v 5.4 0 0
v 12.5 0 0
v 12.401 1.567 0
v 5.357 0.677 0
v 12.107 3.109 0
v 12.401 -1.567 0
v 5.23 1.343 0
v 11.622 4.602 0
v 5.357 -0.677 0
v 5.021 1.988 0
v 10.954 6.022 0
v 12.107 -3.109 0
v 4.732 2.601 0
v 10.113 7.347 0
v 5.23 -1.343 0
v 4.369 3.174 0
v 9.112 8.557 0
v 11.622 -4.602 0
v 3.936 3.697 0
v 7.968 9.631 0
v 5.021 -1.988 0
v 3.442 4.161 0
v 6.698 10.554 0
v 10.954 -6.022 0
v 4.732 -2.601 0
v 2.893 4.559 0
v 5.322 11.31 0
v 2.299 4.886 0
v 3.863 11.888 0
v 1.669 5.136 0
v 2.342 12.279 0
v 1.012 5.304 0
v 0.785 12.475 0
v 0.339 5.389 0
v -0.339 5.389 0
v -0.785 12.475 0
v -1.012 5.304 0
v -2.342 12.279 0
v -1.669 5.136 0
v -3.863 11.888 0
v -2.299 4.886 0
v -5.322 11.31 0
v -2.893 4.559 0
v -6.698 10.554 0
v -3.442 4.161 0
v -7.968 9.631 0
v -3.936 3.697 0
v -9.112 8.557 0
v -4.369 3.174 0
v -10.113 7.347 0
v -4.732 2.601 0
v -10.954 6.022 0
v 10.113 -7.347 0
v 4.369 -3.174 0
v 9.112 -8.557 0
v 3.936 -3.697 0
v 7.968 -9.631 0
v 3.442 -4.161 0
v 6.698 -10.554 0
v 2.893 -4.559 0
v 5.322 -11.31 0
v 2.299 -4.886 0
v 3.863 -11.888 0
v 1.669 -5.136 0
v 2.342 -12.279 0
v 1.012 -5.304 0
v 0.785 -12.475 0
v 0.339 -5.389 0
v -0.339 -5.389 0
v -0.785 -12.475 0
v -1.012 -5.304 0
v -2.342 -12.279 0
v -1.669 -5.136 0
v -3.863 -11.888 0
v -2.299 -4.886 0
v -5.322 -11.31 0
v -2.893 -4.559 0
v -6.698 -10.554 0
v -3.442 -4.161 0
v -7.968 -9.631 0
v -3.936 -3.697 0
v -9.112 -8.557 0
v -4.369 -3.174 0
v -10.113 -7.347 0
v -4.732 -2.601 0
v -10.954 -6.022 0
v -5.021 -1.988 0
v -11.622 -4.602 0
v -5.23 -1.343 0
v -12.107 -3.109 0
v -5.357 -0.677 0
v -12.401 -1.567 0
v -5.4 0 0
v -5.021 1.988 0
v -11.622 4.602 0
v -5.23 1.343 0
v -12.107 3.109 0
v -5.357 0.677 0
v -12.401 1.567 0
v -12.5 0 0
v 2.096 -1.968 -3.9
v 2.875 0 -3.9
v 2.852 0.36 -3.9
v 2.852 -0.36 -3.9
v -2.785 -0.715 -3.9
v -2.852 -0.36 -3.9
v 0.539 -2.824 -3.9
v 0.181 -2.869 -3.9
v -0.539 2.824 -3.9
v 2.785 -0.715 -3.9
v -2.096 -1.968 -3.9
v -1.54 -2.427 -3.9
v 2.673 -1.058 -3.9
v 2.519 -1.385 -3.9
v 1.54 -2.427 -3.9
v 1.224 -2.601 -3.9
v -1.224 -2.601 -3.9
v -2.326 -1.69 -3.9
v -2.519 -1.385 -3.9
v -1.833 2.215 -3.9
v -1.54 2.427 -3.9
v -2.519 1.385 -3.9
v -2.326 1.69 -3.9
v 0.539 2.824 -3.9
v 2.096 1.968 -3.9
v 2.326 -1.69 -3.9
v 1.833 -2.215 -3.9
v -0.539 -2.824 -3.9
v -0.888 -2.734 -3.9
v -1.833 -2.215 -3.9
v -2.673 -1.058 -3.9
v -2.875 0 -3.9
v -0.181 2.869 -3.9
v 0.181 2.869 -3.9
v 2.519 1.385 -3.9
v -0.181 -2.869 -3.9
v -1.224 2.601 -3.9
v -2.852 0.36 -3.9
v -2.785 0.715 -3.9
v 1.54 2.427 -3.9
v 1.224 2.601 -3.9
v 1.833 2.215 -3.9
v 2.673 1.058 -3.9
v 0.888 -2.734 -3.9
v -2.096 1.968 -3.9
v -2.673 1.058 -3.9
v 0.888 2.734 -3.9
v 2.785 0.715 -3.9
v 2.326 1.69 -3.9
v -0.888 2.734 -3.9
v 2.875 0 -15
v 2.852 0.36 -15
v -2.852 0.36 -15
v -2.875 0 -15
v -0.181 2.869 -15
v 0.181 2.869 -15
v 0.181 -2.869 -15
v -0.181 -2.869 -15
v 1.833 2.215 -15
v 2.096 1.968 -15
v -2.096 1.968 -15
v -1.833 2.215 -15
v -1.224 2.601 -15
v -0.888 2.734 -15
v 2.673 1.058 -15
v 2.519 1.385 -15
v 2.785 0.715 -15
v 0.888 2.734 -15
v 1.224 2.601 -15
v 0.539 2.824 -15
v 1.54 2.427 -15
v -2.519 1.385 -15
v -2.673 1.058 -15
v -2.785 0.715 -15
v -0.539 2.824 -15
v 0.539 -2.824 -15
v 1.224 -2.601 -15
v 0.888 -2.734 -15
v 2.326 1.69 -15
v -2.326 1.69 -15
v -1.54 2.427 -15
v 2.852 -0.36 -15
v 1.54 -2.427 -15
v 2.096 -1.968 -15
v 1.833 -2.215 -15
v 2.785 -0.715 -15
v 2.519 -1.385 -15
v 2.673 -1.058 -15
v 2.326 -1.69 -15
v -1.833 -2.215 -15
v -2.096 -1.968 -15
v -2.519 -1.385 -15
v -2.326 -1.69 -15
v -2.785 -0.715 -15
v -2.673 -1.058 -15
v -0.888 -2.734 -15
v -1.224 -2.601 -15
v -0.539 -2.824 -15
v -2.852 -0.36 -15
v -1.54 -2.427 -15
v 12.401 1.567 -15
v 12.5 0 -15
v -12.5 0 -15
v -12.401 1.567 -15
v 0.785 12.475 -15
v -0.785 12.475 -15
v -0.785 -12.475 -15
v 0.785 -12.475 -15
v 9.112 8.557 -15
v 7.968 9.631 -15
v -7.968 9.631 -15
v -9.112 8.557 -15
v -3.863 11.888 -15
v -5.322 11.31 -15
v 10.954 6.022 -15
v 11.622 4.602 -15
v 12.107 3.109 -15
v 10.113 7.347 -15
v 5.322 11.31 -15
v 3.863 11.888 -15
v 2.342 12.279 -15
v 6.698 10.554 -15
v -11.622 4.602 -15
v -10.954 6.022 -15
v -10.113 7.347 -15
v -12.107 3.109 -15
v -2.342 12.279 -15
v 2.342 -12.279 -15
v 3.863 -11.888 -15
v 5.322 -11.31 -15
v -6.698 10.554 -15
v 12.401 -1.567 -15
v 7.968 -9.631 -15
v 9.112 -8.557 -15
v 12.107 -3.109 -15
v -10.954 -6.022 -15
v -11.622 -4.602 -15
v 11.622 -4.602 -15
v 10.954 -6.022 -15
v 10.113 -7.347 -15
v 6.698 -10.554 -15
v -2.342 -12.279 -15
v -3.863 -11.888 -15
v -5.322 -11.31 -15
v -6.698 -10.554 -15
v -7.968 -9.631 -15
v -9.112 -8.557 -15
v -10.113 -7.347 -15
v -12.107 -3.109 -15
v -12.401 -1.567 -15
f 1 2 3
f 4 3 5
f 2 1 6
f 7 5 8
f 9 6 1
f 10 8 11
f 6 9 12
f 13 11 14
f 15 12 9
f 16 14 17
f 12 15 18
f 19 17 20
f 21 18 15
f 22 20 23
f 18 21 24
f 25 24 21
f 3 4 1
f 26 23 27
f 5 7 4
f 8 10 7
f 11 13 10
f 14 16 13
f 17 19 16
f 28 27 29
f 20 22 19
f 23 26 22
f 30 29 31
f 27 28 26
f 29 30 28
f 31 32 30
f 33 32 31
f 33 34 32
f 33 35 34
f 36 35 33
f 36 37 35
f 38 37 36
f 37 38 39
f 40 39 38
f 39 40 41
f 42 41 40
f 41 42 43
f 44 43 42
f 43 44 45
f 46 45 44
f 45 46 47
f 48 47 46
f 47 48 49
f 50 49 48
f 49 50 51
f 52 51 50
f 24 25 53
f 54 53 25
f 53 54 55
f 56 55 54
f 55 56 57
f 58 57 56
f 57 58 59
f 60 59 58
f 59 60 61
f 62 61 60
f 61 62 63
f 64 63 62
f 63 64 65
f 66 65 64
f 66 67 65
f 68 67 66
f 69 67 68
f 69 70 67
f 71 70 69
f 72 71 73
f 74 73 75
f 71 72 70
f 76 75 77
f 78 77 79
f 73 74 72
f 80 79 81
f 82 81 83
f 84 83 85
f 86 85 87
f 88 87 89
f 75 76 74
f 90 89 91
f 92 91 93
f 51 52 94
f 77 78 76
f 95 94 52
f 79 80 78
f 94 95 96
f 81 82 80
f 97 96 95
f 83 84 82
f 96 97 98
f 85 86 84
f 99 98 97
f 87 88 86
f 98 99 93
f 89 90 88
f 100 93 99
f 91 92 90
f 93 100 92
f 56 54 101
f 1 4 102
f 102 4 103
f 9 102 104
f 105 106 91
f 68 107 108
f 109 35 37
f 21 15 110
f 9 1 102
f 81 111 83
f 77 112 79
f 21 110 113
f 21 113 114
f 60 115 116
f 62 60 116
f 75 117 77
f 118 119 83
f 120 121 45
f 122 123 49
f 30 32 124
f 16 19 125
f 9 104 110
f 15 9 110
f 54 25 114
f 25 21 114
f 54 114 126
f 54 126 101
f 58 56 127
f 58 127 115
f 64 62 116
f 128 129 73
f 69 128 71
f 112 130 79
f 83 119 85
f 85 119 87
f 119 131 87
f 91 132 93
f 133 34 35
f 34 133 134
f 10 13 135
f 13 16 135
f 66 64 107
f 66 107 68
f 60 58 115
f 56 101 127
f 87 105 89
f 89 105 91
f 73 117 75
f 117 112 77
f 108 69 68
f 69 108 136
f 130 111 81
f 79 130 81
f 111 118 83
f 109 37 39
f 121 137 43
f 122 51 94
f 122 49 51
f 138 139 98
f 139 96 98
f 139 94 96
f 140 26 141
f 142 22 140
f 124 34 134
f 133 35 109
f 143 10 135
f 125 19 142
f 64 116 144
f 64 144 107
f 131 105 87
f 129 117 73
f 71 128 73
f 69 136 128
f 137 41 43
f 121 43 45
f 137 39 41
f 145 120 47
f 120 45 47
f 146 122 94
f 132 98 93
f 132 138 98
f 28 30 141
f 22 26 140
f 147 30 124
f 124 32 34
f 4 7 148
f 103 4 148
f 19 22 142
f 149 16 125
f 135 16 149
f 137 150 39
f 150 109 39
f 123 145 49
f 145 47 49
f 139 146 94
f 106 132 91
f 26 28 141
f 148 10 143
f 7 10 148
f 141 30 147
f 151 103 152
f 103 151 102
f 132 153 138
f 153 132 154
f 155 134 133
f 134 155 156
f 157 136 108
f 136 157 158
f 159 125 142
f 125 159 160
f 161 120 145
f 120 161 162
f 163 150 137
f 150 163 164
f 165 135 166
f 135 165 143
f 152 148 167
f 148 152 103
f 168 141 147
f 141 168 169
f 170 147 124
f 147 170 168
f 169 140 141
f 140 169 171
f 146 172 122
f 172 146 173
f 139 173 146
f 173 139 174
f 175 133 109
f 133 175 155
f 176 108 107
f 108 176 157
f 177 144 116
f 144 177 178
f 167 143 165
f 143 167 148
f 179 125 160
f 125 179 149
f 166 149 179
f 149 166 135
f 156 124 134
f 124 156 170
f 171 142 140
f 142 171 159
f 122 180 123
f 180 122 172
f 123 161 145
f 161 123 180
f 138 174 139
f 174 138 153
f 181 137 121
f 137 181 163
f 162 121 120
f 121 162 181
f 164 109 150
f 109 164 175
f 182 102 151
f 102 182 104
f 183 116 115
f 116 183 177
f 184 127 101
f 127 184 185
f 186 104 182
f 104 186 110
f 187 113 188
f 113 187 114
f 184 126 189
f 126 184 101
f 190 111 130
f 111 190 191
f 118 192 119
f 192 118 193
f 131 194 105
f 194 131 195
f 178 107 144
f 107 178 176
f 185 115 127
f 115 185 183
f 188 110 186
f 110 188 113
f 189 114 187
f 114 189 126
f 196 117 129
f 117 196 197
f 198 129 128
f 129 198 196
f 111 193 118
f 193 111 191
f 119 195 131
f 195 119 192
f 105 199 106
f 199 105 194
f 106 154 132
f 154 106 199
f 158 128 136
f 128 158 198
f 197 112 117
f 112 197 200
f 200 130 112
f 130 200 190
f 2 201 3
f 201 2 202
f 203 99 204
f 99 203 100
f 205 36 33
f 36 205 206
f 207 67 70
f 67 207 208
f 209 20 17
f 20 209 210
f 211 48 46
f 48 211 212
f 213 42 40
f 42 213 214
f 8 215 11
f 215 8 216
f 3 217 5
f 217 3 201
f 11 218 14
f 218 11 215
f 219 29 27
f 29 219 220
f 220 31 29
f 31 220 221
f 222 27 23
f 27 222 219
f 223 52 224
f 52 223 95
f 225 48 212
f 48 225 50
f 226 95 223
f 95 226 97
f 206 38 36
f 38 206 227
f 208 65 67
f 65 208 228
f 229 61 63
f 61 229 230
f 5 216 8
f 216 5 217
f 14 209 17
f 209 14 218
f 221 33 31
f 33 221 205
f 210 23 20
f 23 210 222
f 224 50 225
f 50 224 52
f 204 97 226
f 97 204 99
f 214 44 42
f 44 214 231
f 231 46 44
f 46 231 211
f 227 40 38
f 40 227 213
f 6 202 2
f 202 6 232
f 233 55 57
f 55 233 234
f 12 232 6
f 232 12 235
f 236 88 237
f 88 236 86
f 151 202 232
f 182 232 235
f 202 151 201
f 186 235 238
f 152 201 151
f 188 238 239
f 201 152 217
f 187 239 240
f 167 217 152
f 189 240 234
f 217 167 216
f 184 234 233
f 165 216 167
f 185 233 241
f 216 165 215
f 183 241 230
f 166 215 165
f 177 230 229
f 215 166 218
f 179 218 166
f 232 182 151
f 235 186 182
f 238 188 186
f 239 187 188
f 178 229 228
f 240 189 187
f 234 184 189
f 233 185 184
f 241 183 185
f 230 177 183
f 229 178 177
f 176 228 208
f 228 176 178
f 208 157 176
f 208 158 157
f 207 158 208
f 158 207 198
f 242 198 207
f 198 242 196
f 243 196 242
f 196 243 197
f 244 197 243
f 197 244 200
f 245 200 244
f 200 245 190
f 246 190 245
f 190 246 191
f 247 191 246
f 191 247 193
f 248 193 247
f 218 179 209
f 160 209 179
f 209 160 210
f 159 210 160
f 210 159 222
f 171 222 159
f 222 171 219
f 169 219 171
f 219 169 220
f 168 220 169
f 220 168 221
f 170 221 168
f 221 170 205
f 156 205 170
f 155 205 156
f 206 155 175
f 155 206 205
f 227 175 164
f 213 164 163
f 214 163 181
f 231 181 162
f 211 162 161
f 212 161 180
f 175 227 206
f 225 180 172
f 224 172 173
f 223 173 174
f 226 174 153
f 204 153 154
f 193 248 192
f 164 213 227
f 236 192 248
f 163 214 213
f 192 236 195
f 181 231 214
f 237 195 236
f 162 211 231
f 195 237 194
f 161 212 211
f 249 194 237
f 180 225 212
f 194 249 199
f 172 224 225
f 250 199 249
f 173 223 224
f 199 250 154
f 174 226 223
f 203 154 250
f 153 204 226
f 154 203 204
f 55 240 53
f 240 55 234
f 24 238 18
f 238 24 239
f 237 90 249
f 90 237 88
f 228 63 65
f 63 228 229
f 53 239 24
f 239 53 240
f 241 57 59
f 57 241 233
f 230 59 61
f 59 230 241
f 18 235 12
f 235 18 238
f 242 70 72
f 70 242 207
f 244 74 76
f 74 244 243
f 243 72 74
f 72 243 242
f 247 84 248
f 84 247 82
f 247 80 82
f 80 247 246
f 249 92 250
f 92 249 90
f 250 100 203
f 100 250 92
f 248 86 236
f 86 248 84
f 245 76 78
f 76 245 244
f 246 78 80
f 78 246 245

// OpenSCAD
$fn = 50;

difference() {
	union() {
		translate(v = [0, 0, -15.0]) {
			cylinder(h = 15, r = 12.5);
		}
	}
	union() {
		translate(v = [0, 0, 0]) {
			rotate(a = [0, 0, 0]) {
				difference() {
					union() {
						translate(v = [0, 0, -18.0]) {
							cylinder(h = 18, r = 2.6);
						}
						translate(v = [0, 0, -3.9]) {
							cylinder(h = 3.9, r1 = 2.875, r2 = 5.4);
						}
						translate(v = [0, 0, -18.0]) {
							cylinder(h = 18, r = 2.875);
						}
						translate(v = [0, 0, -18.0]) {
							cylinder(h = 18, r = 2.6);
						}
					}
					union();
				}
			}
		}
	}
}
